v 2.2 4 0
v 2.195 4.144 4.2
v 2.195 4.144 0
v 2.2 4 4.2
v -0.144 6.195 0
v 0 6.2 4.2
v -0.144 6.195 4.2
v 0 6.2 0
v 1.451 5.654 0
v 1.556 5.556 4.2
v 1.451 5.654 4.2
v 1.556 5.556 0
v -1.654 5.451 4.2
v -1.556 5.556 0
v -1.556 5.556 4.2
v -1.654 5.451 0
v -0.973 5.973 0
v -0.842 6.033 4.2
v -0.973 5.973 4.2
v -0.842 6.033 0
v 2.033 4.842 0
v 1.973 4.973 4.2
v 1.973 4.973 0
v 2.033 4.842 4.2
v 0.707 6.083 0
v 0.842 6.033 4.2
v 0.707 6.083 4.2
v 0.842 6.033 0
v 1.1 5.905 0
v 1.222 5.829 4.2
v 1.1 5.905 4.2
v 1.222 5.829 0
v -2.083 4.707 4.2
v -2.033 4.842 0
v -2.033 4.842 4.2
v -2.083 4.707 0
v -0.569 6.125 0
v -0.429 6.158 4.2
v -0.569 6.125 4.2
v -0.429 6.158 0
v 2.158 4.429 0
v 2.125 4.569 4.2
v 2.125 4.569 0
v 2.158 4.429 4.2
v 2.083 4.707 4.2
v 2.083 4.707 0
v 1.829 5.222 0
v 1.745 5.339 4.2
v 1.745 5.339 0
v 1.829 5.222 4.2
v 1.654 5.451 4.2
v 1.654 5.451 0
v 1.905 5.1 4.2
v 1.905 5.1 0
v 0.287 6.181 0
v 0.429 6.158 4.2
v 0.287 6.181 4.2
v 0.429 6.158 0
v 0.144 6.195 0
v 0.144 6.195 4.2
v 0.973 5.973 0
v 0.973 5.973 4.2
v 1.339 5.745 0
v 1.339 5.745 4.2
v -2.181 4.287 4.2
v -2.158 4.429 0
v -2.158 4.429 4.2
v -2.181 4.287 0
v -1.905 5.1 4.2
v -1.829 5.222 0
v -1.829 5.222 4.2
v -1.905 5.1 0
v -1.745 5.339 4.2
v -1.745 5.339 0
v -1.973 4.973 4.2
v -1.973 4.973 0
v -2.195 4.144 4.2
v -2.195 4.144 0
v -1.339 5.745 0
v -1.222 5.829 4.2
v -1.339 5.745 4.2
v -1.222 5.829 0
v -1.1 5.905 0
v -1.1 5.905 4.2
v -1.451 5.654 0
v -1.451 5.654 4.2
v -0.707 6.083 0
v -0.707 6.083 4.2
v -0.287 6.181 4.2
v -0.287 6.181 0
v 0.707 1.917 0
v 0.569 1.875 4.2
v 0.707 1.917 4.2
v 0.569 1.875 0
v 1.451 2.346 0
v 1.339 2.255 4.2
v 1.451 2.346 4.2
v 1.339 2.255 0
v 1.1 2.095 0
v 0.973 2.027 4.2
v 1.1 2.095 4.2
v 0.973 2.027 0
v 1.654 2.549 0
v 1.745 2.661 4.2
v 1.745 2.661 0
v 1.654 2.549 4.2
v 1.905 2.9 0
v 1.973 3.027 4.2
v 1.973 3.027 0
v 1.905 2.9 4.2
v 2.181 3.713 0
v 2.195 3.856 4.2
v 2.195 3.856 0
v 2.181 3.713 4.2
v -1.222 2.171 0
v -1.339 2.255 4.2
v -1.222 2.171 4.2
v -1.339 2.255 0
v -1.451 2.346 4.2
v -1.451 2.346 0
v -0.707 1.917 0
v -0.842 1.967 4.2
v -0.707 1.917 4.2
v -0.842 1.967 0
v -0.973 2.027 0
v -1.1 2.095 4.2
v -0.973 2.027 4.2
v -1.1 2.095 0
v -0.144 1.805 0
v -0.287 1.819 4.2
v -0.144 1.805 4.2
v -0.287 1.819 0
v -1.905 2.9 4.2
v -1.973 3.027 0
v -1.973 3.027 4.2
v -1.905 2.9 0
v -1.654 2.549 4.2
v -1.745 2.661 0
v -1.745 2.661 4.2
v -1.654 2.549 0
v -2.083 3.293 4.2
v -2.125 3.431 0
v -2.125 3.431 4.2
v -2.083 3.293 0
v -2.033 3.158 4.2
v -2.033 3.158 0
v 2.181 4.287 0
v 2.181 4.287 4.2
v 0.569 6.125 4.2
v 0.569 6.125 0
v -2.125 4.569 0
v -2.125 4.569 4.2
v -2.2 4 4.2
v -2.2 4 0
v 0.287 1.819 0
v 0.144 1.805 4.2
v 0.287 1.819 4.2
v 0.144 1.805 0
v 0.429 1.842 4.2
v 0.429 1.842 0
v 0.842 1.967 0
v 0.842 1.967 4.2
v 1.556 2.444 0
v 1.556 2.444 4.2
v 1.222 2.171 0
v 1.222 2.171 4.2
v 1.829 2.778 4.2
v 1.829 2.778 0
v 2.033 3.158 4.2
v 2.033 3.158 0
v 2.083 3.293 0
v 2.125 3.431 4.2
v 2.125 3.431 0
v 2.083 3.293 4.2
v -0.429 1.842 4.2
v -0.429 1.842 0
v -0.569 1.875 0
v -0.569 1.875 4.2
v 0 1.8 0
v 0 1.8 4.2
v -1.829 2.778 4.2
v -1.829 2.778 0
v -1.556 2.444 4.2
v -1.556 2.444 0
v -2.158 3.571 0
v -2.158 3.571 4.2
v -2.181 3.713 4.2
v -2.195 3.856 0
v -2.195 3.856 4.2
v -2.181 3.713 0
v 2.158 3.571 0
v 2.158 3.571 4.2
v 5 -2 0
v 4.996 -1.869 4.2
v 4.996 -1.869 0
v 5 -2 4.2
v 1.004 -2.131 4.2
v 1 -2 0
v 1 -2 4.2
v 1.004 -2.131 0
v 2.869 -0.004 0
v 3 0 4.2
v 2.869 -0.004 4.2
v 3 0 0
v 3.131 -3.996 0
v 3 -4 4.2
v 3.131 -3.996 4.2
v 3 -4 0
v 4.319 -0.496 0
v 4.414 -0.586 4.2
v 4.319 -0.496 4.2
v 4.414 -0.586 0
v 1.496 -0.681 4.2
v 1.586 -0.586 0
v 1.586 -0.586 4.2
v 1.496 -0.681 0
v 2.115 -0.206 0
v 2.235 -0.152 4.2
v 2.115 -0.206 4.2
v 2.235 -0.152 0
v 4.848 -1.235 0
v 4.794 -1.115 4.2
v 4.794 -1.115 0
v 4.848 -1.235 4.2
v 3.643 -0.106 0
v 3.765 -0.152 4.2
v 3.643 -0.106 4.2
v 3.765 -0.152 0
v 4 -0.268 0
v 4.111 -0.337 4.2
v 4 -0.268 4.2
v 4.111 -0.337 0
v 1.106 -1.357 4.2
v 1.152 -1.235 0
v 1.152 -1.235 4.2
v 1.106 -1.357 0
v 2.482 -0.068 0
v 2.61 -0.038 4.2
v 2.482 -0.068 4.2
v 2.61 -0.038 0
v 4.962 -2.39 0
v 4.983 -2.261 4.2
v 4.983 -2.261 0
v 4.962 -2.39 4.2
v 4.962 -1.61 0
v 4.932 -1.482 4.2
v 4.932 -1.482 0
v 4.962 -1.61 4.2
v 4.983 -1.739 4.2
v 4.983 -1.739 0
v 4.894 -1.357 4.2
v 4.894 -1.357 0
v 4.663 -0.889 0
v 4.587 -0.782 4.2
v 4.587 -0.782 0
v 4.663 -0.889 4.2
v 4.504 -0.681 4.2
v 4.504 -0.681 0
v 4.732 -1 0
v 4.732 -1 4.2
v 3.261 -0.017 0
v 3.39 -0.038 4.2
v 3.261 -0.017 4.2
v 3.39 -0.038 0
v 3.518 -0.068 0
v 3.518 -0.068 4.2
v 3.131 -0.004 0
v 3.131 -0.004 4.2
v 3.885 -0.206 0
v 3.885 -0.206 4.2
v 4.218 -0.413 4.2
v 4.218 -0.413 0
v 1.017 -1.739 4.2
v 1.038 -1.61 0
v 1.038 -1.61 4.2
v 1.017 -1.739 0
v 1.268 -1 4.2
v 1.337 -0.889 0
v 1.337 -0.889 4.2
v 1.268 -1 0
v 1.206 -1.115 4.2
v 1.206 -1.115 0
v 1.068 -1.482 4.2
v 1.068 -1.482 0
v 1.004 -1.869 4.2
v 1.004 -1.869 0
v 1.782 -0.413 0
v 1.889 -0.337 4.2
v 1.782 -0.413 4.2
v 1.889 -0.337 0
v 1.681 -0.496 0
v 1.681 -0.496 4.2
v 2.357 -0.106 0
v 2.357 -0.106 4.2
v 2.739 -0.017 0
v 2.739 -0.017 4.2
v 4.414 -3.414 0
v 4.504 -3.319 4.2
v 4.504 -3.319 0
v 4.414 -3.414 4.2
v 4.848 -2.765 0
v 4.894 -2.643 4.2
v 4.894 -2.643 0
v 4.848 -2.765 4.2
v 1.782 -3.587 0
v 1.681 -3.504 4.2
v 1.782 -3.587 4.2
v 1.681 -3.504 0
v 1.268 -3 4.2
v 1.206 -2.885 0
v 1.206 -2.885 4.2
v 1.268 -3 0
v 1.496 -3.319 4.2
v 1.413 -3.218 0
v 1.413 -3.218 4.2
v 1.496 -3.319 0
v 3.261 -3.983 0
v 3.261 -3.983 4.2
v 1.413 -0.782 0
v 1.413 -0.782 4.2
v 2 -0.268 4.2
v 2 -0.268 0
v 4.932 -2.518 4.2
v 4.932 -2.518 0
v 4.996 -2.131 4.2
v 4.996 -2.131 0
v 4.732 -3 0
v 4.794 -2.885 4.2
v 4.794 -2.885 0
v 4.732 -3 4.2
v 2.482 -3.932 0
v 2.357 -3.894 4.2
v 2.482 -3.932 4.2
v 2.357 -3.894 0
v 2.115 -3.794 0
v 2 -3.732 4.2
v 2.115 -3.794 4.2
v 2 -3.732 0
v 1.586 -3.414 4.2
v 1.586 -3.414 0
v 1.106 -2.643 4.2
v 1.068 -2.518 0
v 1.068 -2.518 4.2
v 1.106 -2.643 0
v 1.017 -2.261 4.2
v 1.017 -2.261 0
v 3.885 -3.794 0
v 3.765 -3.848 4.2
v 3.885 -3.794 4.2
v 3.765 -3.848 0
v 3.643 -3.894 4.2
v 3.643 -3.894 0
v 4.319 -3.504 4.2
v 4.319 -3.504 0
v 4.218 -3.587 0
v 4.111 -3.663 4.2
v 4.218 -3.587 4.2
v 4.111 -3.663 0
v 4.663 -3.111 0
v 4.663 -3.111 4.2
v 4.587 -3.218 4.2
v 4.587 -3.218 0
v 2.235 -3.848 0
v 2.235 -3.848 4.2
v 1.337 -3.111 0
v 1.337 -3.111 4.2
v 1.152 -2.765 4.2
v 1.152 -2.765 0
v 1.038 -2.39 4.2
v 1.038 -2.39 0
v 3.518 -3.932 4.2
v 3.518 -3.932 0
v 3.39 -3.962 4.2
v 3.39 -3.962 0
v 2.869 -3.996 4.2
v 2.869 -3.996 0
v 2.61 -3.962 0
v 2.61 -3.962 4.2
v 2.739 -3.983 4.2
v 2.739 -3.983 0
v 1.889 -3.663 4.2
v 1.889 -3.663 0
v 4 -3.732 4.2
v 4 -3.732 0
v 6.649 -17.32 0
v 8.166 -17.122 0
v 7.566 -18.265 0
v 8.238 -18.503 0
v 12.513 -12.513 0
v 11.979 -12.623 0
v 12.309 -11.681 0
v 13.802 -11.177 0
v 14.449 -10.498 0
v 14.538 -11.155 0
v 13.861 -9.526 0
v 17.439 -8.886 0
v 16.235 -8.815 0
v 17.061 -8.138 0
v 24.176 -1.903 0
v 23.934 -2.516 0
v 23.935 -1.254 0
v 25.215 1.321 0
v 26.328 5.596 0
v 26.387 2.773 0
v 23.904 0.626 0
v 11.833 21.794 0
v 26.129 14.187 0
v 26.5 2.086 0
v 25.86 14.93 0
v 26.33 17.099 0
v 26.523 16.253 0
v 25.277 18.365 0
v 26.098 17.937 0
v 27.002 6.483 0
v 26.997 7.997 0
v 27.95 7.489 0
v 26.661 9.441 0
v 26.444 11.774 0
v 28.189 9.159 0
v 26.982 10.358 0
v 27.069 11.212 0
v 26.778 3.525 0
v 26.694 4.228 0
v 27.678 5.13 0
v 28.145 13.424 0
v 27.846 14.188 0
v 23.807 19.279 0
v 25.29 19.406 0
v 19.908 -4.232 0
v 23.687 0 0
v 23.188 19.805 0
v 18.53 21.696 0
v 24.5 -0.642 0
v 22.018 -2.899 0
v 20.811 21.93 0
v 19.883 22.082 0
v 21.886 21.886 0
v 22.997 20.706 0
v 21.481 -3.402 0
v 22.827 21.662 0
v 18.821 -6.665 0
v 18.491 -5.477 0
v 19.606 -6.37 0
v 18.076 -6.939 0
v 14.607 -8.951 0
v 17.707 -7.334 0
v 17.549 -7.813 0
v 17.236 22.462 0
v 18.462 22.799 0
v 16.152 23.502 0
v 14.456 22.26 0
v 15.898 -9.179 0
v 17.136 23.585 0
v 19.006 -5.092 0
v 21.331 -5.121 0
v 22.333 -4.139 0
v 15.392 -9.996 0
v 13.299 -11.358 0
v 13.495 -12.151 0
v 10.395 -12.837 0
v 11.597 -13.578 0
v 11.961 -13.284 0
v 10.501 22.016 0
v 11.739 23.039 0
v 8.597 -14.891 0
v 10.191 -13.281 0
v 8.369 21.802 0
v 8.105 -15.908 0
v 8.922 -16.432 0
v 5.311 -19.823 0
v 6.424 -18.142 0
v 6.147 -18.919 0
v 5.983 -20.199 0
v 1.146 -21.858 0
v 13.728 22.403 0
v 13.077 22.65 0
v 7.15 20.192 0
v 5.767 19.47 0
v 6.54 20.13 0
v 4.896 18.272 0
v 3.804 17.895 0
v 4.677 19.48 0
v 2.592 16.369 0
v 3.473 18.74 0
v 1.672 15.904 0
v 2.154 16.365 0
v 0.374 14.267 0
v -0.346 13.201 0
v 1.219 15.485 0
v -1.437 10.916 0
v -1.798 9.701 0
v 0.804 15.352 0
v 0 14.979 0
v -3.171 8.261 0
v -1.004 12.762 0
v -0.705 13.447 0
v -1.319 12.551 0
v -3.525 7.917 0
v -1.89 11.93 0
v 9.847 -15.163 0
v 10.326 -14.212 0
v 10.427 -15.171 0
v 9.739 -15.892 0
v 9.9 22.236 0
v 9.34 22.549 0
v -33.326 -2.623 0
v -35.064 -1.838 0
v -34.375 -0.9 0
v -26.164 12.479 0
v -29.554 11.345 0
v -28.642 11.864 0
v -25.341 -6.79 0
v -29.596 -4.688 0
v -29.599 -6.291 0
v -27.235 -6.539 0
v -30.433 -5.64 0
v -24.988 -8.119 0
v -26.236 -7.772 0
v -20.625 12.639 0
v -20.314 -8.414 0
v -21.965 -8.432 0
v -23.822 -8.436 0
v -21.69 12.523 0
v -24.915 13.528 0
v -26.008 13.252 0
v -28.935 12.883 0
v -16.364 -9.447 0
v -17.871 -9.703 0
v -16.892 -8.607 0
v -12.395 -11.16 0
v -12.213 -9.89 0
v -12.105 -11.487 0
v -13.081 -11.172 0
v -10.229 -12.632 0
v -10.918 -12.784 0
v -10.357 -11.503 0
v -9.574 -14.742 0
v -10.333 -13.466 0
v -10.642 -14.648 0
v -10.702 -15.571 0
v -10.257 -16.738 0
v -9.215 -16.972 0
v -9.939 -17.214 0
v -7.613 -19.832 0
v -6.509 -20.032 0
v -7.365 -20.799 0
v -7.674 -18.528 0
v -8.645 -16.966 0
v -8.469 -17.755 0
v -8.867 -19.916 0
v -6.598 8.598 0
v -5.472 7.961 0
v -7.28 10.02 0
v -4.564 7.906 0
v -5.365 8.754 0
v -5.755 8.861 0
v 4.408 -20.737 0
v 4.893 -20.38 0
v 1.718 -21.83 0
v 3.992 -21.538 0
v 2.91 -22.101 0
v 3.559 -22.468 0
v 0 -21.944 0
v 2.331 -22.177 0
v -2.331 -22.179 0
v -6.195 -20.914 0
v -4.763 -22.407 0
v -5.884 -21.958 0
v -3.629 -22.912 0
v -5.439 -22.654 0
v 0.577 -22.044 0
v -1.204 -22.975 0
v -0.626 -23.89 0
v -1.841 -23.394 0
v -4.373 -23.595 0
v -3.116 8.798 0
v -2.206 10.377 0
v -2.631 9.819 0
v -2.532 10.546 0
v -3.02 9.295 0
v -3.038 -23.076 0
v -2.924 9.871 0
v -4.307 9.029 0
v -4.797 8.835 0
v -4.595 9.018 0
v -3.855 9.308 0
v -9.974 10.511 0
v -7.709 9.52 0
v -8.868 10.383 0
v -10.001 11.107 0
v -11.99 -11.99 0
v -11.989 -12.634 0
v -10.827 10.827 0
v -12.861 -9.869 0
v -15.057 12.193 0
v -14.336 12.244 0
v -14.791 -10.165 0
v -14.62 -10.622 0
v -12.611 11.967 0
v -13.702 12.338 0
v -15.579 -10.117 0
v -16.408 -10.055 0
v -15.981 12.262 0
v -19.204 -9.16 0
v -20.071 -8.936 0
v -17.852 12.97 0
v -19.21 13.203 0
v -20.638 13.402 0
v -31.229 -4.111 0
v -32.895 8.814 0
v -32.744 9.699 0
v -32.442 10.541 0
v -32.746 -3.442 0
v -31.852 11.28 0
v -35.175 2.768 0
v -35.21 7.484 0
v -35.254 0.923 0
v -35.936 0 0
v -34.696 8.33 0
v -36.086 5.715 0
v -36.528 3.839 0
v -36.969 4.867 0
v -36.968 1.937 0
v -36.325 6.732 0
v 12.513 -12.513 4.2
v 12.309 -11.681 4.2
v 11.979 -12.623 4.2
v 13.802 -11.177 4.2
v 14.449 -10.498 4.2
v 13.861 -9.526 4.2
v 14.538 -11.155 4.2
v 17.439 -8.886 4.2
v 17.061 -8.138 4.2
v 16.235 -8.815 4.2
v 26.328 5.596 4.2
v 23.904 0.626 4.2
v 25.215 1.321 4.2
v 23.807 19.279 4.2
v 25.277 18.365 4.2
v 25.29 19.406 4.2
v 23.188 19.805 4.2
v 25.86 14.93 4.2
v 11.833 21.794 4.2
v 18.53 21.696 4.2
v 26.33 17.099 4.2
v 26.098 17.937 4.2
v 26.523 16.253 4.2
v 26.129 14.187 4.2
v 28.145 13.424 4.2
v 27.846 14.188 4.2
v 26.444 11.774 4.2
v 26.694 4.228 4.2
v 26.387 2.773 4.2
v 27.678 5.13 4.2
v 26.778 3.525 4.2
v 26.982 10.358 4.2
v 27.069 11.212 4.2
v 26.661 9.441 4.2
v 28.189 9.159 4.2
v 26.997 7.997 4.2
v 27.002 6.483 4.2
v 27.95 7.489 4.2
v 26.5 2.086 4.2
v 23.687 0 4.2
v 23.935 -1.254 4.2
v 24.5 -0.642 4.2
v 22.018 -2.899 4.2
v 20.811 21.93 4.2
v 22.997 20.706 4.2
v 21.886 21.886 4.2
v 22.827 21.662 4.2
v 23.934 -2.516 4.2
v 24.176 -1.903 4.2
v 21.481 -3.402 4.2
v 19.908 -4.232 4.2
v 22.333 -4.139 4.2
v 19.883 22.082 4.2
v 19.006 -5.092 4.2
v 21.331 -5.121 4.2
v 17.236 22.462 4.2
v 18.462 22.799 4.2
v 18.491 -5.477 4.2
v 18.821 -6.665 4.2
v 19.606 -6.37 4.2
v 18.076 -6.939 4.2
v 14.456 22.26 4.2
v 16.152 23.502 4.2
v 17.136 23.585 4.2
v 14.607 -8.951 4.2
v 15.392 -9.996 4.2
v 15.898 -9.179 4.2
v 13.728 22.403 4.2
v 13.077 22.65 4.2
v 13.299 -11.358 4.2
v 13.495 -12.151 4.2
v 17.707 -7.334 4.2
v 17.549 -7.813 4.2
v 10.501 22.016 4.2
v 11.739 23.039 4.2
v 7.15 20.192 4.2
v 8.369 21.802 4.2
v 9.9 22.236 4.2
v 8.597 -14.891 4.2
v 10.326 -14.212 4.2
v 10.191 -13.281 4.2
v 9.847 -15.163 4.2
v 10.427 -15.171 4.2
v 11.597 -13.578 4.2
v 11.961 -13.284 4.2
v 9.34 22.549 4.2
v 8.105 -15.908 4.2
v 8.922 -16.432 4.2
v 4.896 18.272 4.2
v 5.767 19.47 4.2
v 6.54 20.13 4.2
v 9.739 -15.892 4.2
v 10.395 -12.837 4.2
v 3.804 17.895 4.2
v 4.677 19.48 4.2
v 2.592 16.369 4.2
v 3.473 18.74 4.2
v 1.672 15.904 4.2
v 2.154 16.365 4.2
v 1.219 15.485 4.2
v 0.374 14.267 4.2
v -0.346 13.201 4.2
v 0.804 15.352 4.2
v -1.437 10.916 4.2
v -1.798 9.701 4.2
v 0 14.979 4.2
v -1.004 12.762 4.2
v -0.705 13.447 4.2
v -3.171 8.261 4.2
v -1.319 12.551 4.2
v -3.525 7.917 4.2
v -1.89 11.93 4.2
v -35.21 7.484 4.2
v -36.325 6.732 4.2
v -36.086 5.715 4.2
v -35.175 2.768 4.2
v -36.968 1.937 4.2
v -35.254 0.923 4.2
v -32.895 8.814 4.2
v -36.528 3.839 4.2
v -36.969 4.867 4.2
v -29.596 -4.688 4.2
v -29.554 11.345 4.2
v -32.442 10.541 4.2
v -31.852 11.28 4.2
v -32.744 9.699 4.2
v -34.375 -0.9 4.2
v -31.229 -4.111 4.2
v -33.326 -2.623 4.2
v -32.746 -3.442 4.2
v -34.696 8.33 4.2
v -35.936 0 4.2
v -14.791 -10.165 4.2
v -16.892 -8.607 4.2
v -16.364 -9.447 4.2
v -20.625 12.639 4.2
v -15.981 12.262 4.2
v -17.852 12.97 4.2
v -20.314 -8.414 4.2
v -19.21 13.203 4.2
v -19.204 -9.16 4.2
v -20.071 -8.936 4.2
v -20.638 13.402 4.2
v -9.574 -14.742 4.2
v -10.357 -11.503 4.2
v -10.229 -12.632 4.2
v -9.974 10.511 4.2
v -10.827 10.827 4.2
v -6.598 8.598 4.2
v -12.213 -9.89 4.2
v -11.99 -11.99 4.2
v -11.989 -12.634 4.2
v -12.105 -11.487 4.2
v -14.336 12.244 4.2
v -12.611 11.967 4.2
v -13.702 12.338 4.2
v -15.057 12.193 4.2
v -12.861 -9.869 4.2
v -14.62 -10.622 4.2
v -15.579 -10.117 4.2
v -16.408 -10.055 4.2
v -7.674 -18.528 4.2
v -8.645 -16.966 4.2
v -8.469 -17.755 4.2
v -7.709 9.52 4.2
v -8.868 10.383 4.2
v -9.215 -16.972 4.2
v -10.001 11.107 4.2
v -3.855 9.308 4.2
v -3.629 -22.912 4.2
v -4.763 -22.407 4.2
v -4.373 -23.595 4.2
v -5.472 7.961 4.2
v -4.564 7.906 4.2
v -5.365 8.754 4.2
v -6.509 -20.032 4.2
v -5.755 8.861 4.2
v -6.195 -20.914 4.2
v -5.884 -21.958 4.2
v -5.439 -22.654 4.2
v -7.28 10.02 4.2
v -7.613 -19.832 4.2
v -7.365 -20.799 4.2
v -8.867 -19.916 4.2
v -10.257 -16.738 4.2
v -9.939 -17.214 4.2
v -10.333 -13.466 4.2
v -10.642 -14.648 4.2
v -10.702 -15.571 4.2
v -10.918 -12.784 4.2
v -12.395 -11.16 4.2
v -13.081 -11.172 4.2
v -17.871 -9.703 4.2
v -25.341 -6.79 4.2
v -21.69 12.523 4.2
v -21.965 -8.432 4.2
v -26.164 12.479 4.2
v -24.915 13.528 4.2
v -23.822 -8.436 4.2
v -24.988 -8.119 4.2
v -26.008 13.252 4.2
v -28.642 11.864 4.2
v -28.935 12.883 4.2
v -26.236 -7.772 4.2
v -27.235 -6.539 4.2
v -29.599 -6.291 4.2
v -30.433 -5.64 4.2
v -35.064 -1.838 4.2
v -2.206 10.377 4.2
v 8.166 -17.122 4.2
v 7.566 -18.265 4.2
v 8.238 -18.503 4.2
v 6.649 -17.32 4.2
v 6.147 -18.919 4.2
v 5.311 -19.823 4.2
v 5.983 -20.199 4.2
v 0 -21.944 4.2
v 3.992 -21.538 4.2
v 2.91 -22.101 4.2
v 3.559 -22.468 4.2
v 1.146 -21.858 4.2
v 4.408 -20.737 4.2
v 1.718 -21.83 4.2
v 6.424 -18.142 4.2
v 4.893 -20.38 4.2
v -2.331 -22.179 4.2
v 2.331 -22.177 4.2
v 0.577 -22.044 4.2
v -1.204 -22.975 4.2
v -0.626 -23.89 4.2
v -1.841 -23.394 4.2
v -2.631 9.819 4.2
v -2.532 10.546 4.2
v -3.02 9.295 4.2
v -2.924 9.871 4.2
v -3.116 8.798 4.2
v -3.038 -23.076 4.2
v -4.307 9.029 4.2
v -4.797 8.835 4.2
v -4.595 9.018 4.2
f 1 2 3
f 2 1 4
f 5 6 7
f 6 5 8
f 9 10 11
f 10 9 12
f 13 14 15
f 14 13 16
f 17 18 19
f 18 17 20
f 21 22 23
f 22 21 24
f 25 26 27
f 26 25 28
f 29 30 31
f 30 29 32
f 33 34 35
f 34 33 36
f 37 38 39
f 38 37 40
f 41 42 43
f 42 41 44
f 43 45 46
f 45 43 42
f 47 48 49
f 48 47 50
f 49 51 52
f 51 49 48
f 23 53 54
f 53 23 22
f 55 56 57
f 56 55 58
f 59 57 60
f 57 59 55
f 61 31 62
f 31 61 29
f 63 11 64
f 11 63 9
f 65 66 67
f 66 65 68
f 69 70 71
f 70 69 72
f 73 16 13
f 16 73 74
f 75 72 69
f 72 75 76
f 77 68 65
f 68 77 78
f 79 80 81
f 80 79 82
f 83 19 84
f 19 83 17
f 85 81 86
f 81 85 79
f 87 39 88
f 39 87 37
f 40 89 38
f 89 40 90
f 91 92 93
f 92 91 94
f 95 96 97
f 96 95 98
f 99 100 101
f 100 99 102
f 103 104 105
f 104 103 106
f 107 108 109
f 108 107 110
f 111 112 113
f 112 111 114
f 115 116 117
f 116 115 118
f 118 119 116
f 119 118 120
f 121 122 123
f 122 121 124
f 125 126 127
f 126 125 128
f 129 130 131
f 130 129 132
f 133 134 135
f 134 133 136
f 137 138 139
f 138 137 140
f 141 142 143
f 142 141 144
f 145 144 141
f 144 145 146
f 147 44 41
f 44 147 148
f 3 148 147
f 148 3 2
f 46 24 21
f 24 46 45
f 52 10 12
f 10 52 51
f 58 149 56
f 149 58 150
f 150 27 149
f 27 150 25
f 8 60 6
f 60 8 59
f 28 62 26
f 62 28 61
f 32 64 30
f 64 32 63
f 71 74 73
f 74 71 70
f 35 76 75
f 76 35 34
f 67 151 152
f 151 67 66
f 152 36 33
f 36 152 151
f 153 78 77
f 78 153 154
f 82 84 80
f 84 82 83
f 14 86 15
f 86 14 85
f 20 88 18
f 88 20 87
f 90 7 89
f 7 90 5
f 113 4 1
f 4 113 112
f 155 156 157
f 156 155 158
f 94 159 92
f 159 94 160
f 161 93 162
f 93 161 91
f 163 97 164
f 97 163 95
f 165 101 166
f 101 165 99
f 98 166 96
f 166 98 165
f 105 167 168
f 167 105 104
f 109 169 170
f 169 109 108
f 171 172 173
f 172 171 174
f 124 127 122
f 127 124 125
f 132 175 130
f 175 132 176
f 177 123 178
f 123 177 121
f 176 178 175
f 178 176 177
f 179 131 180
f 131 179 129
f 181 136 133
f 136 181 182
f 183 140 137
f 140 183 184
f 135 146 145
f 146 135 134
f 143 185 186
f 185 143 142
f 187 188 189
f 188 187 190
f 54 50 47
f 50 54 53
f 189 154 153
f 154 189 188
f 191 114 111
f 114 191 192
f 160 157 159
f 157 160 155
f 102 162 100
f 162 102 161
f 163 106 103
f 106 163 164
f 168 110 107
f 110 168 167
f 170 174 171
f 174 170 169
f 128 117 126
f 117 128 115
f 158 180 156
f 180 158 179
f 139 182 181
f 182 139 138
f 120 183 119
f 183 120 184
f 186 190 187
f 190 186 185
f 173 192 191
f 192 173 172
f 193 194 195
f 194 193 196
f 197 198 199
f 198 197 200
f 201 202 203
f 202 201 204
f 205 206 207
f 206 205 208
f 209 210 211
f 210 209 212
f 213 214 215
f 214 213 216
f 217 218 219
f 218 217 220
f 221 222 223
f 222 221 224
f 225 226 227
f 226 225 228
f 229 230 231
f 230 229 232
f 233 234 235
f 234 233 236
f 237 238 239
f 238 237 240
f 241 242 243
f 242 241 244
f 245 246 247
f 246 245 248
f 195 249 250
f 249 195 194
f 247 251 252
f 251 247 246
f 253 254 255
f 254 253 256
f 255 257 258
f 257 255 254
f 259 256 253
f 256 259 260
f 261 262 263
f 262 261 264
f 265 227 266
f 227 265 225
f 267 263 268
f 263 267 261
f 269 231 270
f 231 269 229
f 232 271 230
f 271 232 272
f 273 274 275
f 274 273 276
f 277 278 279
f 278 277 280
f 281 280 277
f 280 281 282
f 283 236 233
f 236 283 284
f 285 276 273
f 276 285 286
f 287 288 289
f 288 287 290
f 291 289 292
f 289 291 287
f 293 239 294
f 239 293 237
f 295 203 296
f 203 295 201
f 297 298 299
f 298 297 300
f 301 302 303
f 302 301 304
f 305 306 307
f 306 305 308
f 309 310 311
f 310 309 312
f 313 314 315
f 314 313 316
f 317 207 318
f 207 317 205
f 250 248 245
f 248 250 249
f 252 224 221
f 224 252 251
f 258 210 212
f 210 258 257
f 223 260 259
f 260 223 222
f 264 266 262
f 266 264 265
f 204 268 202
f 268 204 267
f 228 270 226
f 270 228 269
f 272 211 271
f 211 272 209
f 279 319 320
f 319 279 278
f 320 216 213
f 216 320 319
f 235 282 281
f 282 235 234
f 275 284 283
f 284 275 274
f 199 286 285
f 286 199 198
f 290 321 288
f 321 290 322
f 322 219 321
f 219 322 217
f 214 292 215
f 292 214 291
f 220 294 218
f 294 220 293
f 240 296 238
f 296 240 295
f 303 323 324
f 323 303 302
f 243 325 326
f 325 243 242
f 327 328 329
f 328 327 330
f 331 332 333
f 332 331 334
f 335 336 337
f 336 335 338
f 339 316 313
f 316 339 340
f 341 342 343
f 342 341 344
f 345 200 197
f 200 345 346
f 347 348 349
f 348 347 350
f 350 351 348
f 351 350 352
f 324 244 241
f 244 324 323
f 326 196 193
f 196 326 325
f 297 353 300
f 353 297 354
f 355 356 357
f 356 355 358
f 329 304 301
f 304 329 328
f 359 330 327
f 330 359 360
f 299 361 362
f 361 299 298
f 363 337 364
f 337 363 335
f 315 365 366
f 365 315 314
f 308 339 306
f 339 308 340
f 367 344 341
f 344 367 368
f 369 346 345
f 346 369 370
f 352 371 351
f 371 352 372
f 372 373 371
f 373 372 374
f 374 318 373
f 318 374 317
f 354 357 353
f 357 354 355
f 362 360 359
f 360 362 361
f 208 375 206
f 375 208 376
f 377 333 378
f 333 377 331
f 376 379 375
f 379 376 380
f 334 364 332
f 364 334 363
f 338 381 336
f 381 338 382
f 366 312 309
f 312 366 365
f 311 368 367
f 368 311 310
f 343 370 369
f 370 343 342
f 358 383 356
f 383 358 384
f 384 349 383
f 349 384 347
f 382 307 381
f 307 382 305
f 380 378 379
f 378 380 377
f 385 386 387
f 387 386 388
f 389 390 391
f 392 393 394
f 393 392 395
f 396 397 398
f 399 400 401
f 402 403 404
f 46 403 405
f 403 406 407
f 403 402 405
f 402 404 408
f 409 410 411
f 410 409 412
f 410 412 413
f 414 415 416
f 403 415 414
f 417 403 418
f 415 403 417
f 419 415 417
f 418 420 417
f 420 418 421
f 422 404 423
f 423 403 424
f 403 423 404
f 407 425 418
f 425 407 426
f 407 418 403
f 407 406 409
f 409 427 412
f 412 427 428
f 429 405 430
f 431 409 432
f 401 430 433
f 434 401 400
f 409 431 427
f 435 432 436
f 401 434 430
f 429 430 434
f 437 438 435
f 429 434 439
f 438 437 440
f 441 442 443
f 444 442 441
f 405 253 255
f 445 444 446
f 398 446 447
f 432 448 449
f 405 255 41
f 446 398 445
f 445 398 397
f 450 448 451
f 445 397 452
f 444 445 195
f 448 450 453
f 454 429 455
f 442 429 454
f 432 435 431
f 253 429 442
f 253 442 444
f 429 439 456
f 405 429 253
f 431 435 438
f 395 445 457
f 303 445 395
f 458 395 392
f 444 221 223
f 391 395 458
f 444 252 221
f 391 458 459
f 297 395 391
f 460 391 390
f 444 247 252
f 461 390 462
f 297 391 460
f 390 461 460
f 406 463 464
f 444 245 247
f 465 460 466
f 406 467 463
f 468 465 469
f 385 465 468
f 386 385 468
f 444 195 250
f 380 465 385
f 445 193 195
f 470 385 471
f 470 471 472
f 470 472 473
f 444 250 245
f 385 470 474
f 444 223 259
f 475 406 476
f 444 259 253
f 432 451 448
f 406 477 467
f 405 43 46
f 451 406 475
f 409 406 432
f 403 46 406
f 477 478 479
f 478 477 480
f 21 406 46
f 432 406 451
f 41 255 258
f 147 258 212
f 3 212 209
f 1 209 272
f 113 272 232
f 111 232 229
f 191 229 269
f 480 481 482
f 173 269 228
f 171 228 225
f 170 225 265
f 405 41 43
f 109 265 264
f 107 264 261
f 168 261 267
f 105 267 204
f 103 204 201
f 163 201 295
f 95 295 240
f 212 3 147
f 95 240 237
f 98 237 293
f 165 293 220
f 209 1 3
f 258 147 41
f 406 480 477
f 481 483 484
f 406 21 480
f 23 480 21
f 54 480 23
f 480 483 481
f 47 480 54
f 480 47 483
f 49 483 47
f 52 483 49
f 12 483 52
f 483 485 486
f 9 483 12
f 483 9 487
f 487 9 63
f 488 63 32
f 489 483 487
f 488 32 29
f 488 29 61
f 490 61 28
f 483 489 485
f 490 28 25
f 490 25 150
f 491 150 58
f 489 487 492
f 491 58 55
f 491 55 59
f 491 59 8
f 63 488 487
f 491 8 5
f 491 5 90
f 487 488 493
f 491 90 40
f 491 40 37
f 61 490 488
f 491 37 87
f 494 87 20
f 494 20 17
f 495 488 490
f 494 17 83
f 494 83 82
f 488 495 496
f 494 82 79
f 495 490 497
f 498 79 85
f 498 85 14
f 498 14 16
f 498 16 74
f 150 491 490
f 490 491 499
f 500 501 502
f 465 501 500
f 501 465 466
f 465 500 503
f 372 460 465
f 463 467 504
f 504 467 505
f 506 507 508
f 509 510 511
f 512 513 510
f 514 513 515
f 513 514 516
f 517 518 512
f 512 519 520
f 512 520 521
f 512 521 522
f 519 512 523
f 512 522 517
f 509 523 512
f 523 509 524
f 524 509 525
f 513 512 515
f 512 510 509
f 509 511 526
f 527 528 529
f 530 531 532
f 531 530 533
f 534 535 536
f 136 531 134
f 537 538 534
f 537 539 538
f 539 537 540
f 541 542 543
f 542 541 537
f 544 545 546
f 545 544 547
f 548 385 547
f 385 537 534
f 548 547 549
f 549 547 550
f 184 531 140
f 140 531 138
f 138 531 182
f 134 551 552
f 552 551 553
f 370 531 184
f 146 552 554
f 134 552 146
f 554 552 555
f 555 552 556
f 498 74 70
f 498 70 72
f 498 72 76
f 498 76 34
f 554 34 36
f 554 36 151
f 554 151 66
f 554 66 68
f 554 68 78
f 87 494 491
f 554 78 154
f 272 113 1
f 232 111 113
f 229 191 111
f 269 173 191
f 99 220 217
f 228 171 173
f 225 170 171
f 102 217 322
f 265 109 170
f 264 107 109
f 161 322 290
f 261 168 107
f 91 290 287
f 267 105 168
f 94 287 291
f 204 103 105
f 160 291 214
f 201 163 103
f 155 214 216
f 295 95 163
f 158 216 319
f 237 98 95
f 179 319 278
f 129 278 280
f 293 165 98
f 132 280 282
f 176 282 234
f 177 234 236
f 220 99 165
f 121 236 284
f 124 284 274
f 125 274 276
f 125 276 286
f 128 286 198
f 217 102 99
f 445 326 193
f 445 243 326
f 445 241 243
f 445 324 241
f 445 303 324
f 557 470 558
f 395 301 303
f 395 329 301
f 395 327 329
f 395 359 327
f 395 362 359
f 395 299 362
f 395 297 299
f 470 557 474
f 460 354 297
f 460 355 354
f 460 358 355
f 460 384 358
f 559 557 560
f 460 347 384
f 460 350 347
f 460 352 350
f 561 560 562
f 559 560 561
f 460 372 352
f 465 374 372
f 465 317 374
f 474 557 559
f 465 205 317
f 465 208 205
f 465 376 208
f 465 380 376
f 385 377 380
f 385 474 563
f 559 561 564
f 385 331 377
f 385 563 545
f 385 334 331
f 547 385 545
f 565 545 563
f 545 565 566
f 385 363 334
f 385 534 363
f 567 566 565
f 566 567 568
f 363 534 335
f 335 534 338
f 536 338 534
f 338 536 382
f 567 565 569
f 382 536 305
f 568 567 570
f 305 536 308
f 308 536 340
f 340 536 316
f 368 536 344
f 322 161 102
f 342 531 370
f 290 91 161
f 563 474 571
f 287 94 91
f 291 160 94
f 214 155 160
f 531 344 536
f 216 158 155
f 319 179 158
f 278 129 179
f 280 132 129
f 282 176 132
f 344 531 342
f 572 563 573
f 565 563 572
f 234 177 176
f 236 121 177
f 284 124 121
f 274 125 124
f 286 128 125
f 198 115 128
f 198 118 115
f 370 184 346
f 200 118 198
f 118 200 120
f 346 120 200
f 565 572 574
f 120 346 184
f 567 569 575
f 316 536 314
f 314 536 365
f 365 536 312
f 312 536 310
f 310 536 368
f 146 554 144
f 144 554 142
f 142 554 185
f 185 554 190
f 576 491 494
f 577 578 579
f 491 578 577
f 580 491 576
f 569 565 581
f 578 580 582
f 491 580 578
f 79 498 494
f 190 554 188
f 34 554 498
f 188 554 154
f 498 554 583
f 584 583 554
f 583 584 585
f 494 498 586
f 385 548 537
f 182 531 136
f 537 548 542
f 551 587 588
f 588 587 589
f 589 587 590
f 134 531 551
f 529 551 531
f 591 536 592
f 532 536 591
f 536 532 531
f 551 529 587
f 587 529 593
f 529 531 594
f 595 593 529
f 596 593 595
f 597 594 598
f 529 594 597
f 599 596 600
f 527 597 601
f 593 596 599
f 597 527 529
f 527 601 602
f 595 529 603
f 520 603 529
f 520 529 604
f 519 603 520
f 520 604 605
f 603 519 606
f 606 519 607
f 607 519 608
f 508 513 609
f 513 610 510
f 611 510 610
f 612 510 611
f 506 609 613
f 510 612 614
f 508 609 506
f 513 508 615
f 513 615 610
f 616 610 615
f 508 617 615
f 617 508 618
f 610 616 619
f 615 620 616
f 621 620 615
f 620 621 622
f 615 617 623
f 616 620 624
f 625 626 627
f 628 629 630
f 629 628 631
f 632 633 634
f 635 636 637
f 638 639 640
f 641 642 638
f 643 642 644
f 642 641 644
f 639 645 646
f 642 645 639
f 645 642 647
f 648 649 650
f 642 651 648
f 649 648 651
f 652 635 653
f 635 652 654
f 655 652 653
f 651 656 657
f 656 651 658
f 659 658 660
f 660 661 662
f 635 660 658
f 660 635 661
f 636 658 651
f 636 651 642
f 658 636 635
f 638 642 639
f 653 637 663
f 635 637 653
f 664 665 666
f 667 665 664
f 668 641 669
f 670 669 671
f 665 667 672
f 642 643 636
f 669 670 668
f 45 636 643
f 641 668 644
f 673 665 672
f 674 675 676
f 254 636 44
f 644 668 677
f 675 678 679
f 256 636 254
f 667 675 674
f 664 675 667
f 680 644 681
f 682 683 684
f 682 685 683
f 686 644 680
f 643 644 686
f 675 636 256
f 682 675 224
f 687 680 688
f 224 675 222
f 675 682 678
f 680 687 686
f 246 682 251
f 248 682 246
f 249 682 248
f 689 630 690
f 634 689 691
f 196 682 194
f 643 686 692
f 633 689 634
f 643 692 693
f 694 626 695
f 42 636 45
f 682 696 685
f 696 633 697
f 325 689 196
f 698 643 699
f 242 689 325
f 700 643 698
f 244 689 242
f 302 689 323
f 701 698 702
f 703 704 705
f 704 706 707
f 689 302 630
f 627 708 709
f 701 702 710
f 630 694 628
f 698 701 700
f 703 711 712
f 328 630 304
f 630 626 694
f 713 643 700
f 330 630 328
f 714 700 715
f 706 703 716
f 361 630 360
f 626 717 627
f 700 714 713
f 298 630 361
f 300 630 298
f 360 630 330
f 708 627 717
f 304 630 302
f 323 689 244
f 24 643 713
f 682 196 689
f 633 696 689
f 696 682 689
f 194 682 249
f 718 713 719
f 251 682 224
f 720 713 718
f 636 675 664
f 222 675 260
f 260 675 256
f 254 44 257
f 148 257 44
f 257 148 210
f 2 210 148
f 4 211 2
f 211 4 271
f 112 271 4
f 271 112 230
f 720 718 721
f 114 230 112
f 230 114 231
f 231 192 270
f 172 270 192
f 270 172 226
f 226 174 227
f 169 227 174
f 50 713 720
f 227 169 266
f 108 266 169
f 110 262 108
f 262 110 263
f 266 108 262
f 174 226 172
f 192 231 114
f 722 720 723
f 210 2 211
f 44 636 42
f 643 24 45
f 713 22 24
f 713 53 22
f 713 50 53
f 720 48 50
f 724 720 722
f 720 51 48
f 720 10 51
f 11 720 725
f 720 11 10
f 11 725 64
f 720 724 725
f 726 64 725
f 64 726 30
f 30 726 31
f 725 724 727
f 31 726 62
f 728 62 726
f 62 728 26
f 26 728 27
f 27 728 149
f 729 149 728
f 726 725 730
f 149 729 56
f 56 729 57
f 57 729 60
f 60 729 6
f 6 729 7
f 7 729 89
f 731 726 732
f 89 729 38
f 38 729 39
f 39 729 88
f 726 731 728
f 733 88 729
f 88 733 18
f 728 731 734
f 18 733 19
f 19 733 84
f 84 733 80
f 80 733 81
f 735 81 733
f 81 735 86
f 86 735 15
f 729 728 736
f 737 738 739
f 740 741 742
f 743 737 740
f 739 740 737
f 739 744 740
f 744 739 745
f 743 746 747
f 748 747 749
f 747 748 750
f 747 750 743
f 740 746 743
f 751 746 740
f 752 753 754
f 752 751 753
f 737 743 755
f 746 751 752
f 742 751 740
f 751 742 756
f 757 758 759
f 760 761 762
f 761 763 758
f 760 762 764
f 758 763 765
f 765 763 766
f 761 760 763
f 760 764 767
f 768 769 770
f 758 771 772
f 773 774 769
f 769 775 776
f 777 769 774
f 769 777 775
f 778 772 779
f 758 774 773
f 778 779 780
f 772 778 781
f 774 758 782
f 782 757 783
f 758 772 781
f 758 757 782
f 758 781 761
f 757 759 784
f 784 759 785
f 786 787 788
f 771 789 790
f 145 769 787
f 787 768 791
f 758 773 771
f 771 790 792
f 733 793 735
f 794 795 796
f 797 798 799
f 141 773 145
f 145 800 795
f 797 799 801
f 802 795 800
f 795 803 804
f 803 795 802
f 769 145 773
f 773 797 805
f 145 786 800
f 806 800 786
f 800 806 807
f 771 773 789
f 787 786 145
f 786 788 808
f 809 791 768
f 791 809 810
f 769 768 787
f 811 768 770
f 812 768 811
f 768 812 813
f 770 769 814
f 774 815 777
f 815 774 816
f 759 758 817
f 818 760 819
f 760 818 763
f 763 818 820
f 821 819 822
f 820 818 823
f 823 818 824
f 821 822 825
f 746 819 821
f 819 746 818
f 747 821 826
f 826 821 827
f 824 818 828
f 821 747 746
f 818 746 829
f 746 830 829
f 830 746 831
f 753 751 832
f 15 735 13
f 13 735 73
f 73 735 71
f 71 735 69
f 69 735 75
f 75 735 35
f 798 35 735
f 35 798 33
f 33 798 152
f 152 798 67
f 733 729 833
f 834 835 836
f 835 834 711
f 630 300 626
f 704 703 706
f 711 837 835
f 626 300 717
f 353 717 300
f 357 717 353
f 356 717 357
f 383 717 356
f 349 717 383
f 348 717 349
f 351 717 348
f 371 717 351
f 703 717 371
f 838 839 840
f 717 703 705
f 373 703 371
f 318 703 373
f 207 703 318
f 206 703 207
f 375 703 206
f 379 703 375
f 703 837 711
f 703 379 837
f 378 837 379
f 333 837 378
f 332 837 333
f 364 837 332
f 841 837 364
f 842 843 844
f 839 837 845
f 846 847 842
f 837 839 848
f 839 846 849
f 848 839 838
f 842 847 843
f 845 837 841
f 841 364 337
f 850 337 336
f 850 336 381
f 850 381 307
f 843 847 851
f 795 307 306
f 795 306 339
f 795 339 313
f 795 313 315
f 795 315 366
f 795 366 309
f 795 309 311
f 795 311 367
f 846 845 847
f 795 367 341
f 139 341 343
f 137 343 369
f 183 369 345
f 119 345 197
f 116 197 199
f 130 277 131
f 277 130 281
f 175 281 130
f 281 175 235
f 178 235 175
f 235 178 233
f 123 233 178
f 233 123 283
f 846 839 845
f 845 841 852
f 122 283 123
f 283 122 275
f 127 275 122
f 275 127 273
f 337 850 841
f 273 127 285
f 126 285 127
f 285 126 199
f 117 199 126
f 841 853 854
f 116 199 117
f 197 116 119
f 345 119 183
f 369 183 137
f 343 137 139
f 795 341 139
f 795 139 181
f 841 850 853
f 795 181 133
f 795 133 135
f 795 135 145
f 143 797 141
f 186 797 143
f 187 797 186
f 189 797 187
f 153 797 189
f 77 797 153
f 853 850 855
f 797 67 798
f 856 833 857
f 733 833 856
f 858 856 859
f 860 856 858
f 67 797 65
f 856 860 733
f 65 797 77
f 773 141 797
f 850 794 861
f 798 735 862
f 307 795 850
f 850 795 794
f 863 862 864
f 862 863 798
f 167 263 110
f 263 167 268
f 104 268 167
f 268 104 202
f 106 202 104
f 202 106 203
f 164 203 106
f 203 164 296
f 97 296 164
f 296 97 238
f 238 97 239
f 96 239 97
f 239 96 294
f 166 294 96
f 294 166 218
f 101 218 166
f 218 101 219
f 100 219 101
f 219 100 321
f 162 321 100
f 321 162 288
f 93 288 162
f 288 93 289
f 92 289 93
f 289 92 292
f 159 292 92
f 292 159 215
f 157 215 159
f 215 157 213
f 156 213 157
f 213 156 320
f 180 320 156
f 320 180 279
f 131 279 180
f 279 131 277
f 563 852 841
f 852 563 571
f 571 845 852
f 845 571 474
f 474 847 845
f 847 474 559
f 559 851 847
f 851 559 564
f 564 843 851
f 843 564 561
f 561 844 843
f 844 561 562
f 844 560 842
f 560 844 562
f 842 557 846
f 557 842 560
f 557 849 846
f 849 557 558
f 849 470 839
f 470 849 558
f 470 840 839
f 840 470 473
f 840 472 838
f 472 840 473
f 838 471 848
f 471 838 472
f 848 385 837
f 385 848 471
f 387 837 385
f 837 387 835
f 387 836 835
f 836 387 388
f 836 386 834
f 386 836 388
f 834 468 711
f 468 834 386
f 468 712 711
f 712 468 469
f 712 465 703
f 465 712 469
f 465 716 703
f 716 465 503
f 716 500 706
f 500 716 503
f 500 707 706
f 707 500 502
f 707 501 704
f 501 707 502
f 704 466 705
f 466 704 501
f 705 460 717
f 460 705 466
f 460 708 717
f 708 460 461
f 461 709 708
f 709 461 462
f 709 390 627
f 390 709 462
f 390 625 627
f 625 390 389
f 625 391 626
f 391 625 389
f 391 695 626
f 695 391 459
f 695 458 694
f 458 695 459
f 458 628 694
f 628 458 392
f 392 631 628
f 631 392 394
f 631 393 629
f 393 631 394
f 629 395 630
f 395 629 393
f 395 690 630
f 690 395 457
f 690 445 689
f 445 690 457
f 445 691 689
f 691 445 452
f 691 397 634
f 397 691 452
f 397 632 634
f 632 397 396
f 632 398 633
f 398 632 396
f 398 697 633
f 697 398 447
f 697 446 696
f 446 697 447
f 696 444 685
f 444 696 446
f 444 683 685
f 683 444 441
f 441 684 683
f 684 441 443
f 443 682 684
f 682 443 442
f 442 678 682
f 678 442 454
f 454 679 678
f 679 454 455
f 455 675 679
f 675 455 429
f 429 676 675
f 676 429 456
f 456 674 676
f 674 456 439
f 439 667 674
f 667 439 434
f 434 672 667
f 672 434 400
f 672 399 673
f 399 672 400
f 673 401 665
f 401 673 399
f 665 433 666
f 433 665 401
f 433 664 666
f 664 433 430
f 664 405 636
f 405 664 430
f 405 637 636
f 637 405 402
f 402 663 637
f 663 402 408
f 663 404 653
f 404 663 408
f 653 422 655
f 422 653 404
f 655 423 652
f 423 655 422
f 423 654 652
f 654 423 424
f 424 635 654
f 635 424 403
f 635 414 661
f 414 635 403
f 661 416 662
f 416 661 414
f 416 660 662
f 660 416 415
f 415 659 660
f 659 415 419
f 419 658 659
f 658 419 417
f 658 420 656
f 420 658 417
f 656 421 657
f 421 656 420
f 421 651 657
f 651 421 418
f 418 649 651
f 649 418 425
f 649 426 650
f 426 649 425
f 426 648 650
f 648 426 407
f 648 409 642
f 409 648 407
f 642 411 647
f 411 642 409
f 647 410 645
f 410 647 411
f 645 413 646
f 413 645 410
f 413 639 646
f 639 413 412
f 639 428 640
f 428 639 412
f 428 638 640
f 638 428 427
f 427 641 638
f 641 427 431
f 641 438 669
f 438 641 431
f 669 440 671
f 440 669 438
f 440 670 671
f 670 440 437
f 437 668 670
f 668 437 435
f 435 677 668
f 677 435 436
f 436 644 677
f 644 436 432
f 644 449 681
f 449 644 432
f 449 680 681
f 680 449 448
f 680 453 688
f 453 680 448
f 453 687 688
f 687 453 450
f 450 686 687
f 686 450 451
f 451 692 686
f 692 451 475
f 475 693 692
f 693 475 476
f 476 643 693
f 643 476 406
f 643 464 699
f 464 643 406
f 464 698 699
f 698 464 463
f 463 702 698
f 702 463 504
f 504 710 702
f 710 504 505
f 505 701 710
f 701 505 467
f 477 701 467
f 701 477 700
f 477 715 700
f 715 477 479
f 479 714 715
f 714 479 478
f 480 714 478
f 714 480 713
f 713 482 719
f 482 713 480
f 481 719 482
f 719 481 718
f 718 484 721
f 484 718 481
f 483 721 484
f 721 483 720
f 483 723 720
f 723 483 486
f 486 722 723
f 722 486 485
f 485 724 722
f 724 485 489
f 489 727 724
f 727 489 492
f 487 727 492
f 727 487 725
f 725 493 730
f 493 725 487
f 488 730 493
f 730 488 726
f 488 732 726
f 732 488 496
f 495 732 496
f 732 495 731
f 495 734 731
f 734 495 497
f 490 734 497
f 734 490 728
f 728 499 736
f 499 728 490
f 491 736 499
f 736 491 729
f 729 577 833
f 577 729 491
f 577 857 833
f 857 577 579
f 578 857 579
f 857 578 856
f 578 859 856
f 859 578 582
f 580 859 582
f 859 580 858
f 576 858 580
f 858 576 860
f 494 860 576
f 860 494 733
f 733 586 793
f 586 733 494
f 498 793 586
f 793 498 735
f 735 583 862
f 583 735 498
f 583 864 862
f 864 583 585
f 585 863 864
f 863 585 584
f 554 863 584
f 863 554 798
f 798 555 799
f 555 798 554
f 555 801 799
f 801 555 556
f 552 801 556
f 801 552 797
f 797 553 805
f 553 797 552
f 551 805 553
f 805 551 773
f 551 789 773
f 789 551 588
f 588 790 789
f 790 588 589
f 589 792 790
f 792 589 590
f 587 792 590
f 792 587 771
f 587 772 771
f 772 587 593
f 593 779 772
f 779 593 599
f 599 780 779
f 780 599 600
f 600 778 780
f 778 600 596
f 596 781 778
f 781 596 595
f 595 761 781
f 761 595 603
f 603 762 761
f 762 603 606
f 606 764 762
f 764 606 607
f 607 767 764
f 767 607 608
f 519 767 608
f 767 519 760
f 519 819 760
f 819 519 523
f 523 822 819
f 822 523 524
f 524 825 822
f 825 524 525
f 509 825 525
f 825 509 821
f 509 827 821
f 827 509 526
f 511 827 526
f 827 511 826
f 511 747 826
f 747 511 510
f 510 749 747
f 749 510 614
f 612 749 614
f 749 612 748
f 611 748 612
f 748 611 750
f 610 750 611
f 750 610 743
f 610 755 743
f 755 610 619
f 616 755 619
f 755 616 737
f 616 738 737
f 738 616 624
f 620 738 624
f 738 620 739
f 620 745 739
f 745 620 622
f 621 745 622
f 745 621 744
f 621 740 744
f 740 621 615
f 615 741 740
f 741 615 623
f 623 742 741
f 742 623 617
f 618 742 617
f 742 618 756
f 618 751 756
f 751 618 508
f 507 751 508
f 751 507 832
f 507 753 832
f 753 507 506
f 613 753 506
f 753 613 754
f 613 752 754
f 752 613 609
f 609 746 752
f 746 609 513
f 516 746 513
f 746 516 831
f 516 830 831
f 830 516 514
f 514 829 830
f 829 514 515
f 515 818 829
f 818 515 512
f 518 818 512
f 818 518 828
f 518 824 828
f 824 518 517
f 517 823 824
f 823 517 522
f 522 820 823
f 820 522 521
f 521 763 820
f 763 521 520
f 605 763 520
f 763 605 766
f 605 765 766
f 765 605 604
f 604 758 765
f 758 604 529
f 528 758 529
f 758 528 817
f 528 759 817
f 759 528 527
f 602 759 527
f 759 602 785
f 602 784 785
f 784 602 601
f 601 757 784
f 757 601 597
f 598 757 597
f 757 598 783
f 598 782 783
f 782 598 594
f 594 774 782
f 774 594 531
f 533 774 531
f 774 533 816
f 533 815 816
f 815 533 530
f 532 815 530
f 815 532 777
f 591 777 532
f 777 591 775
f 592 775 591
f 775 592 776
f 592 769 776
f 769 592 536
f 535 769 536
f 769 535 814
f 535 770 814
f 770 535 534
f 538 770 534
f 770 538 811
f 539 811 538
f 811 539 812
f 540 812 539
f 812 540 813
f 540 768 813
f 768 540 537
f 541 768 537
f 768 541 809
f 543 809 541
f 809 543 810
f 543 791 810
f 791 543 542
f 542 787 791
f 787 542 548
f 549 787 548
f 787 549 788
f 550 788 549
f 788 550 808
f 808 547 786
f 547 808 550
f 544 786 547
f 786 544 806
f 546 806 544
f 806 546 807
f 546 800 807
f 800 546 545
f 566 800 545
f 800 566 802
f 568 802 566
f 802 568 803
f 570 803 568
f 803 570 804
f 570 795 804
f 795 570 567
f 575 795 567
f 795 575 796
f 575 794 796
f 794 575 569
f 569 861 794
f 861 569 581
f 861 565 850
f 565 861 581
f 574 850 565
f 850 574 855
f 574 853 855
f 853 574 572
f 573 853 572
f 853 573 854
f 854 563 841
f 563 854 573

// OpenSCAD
$fn=96;
thickness_mm = 4.2;
holes = [[0.0, 4.0, 2.2], [3.0, -2.0, 2.0]];
pts = [[23.6872, 0.0], [23.9044, 0.626], [25.2153, 1.3215], [26.4998, 2.0856], [26.3874, 2.7734], [26.7784, 3.5254], [26.6943, 4.228], [27.6775, 5.1297], [26.328, 5.5962], [27.0018, 6.4826], [27.9496, 7.4891], [26.9967, 7.9968], [28.1887, 9.1591], [26.6608, 9.4411], [26.9823, 10.3576], [27.0694, 11.2125], [26.4444, 11.7738], [28.1451, 13.4245], [27.8461, 14.1883], [26.1286, 14.1866], [25.86, 14.9303], [26.5231, 16.2534], [26.3298, 17.0987], [26.0984, 17.9369], [25.2769, 18.3648], [25.29, 19.4057], [23.8071, 19.2786], [23.1883, 19.8047], [22.9968, 20.7064], [22.8272, 21.6622], [21.886, 21.886], [20.8111, 21.9303], [19.8827, 22.082], [18.5302, 21.6961], [18.4621, 22.7988], [17.2356, 22.4619], [17.1356, 23.5852], [16.1525, 23.5021], [14.4557, 22.2598], [13.7285, 22.4029], [13.0769, 22.6498], [11.8331, 21.7938], [11.7391, 23.0392], [10.501, 22.0157], [9.9001, 22.236], [9.3402, 22.5491], [8.3689, 21.8017], [7.1502, 20.1916], [6.5405, 20.1295], [5.7673, 19.4701], [4.896, 18.2723], [4.6767, 19.48], [3.8037, 17.8951], [3.4734, 18.7405], [2.5925, 16.3686], [2.1544, 16.3646], [1.6716, 15.9038], [1.2187, 15.4849], [0.8045, 15.3516], [0.3736, 14.2671], [0.0, 14.9789], [-0.3457, 13.2008], [-0.7047, 13.4472], [-1.0043, 12.7615], [-1.3192, 12.5514], [-1.4371, 10.9157], [-1.8895, 11.9301], [-1.7979, 9.7006], [-2.2058, 10.3774], [-2.5318, 10.5459], [-2.631, 9.8189], [-2.9241, 9.8715], [-3.0201, 9.2948], [-3.1157, 8.7984], [-3.171, 8.2606], [-3.8554, 9.3078], [-3.5248, 7.9169], [-4.3066, 9.0289], [-4.5947, 9.0176], [-4.7969, 8.8347], [-4.5645, 7.906], [-5.3647, 8.7544], [-5.7546, 8.8613], [-5.4715, 7.961], [-7.2798, 10.0197], [-6.5977, 8.5982], [-7.7094, 9.5203], [-8.8681, 10.3832], [-10.0009, 11.1072], [-9.9742, 10.5106], [-10.8273, 10.8273], [-12.611, 11.9674], [-13.7024, 12.3377], [-14.3364, 12.2445], [-15.0573, 12.1932], [-15.9807, 12.2624], [-17.8523, 12.9705], [-19.2104, 13.2029], [-20.6379, 13.4024], [-20.6248, 12.6389], [-21.6904, 12.5229], [-24.9151, 13.5278], [-26.0082, 13.2518], [-26.1637, 12.4794], [-28.9353, 12.8828], [-28.6422, 11.864], [-29.5543, 11.3448], [-31.8525, 11.2795], [-32.4419, 10.541], [-32.744, 9.6992], [-32.8954, 8.8143], [-34.6961, 8.3298], [-35.2095, 7.484], [-36.3248, 6.7324], [-36.0859, 5.7154], [-36.9688, 4.867], [-36.5276, 3.8392], [-35.1748, 2.7683], [-36.9679, 1.9374], [-35.2545, 0.9232], [-35.9364, 0.0], [-34.3752, -0.9001], [-35.0636, -1.8376], [-33.3264, -2.6228], [-32.7457, -3.4417], [-31.2287, -4.1113], [-29.5963, -4.6876], [-30.4326, -5.6403], [-29.5988, -6.2914], [-27.2351, -6.5386], [-25.3408, -6.79], [-26.2365, -7.7716], [-24.9877, -8.119], [-23.8224, -8.436], [-21.965, -8.4316], [-20.3139, -8.4143], [-20.0714, -8.9364], [-19.2038, -9.1598], [-16.8923, -8.6071], [-17.8707, -9.703], [-16.3636, -9.4475], [-16.4084, -10.0551], [-15.5791, -10.1172], [-14.7906, -10.1653], [-14.6199, -10.622], [-12.861, -9.8686], [-12.2127, -9.8896], [-13.0813, -11.1725], [-12.395, -11.1605], [-12.1048, -11.487], [-11.9904, -11.9904], [-11.9891, -12.6338], [-10.3571, -11.5027], [-10.9181, -12.7835], [-10.2294, -12.6323], [-10.3332, -13.4665], [-10.6425, -14.6481], [-10.7016, -15.571], [-9.5738, -14.7424], [-10.2571, -16.7381], [-9.9387, -17.2143], [-9.2149, -16.9717], [-8.6447, -16.9661], [-8.4687, -17.755], [-8.8673, -19.9164], [-7.6745, -18.5279], [-7.6127, -19.8319], [-7.3654, -20.7993], [-6.5087, -20.0316], [-6.1949, -20.9137], [-5.8837, -21.9583], [-5.4388, -22.6543], [-4.7628, -22.4071], [-4.373, -23.5947], [-3.6289, -22.912], [-3.0381, -23.0764], [-2.3311, -22.1789], [-1.8412, -23.3943], [-1.2041, -22.9753], [-0.6256, -23.8905], [-0.0, -21.9443], [0.5772, -22.0439], [1.1456, -21.8585], [1.7181, -21.8302], [2.3309, -22.1766], [2.9097, -22.1013], [3.5586, -22.4679], [3.9919, -21.5383], [4.4078, -20.737], [4.8928, -20.3799], [5.3115, -19.8229], [5.9831, -20.1986], [6.1472, -18.9192], [6.4245, -18.1423], [6.6486, -17.3201], [7.5656, -18.265], [8.2382, -18.5033], [8.1665, -17.1215], [8.1055, -15.908], [8.922, -16.4322], [8.5975, -14.8912], [9.7387, -15.8921], [9.847, -15.163], [10.427, -15.1714], [10.3258, -14.2122], [10.1908, -13.2809], [10.3952, -12.837], [11.597, -13.5783], [11.9609, -13.284], [11.9791, -12.6233], [12.5127, -12.5127], [12.3087, -11.6806], [13.4947, -12.1507], [13.2989, -11.3583], [13.8019, -11.1766], [14.5381, -11.1554], [14.4488, -10.4977], [13.8606, -9.5261], [15.3923, -9.9959], [14.6074, -8.9514], [15.8982, -9.1788], [16.2353, -8.8151], [17.439, -8.8856], [17.0609, -8.1376], [17.5494, -7.8135], [17.707, -7.3345], [18.0763, -6.9388], [18.8208, -6.6648], [19.6062, -6.3705], [18.4906, -5.4772], [19.0055, -5.0925], [21.3307, -5.121], [19.9082, -4.2316], [22.3332, -4.1392], [21.481, -3.4023], [22.0184, -2.8988], [23.9339, -2.5156], [24.1765, -1.9027], [23.9347, -1.2544], [24.4999, -0.6416]];
module body(){
  linear_extrude(height=thickness_mm) polygon(points=pts);
}
difference(){
  body();
  for(h=holes){
    translate([h[0], h[1], -1]) cylinder(h=thickness_mm+2, r=h[2]);
  }
}
